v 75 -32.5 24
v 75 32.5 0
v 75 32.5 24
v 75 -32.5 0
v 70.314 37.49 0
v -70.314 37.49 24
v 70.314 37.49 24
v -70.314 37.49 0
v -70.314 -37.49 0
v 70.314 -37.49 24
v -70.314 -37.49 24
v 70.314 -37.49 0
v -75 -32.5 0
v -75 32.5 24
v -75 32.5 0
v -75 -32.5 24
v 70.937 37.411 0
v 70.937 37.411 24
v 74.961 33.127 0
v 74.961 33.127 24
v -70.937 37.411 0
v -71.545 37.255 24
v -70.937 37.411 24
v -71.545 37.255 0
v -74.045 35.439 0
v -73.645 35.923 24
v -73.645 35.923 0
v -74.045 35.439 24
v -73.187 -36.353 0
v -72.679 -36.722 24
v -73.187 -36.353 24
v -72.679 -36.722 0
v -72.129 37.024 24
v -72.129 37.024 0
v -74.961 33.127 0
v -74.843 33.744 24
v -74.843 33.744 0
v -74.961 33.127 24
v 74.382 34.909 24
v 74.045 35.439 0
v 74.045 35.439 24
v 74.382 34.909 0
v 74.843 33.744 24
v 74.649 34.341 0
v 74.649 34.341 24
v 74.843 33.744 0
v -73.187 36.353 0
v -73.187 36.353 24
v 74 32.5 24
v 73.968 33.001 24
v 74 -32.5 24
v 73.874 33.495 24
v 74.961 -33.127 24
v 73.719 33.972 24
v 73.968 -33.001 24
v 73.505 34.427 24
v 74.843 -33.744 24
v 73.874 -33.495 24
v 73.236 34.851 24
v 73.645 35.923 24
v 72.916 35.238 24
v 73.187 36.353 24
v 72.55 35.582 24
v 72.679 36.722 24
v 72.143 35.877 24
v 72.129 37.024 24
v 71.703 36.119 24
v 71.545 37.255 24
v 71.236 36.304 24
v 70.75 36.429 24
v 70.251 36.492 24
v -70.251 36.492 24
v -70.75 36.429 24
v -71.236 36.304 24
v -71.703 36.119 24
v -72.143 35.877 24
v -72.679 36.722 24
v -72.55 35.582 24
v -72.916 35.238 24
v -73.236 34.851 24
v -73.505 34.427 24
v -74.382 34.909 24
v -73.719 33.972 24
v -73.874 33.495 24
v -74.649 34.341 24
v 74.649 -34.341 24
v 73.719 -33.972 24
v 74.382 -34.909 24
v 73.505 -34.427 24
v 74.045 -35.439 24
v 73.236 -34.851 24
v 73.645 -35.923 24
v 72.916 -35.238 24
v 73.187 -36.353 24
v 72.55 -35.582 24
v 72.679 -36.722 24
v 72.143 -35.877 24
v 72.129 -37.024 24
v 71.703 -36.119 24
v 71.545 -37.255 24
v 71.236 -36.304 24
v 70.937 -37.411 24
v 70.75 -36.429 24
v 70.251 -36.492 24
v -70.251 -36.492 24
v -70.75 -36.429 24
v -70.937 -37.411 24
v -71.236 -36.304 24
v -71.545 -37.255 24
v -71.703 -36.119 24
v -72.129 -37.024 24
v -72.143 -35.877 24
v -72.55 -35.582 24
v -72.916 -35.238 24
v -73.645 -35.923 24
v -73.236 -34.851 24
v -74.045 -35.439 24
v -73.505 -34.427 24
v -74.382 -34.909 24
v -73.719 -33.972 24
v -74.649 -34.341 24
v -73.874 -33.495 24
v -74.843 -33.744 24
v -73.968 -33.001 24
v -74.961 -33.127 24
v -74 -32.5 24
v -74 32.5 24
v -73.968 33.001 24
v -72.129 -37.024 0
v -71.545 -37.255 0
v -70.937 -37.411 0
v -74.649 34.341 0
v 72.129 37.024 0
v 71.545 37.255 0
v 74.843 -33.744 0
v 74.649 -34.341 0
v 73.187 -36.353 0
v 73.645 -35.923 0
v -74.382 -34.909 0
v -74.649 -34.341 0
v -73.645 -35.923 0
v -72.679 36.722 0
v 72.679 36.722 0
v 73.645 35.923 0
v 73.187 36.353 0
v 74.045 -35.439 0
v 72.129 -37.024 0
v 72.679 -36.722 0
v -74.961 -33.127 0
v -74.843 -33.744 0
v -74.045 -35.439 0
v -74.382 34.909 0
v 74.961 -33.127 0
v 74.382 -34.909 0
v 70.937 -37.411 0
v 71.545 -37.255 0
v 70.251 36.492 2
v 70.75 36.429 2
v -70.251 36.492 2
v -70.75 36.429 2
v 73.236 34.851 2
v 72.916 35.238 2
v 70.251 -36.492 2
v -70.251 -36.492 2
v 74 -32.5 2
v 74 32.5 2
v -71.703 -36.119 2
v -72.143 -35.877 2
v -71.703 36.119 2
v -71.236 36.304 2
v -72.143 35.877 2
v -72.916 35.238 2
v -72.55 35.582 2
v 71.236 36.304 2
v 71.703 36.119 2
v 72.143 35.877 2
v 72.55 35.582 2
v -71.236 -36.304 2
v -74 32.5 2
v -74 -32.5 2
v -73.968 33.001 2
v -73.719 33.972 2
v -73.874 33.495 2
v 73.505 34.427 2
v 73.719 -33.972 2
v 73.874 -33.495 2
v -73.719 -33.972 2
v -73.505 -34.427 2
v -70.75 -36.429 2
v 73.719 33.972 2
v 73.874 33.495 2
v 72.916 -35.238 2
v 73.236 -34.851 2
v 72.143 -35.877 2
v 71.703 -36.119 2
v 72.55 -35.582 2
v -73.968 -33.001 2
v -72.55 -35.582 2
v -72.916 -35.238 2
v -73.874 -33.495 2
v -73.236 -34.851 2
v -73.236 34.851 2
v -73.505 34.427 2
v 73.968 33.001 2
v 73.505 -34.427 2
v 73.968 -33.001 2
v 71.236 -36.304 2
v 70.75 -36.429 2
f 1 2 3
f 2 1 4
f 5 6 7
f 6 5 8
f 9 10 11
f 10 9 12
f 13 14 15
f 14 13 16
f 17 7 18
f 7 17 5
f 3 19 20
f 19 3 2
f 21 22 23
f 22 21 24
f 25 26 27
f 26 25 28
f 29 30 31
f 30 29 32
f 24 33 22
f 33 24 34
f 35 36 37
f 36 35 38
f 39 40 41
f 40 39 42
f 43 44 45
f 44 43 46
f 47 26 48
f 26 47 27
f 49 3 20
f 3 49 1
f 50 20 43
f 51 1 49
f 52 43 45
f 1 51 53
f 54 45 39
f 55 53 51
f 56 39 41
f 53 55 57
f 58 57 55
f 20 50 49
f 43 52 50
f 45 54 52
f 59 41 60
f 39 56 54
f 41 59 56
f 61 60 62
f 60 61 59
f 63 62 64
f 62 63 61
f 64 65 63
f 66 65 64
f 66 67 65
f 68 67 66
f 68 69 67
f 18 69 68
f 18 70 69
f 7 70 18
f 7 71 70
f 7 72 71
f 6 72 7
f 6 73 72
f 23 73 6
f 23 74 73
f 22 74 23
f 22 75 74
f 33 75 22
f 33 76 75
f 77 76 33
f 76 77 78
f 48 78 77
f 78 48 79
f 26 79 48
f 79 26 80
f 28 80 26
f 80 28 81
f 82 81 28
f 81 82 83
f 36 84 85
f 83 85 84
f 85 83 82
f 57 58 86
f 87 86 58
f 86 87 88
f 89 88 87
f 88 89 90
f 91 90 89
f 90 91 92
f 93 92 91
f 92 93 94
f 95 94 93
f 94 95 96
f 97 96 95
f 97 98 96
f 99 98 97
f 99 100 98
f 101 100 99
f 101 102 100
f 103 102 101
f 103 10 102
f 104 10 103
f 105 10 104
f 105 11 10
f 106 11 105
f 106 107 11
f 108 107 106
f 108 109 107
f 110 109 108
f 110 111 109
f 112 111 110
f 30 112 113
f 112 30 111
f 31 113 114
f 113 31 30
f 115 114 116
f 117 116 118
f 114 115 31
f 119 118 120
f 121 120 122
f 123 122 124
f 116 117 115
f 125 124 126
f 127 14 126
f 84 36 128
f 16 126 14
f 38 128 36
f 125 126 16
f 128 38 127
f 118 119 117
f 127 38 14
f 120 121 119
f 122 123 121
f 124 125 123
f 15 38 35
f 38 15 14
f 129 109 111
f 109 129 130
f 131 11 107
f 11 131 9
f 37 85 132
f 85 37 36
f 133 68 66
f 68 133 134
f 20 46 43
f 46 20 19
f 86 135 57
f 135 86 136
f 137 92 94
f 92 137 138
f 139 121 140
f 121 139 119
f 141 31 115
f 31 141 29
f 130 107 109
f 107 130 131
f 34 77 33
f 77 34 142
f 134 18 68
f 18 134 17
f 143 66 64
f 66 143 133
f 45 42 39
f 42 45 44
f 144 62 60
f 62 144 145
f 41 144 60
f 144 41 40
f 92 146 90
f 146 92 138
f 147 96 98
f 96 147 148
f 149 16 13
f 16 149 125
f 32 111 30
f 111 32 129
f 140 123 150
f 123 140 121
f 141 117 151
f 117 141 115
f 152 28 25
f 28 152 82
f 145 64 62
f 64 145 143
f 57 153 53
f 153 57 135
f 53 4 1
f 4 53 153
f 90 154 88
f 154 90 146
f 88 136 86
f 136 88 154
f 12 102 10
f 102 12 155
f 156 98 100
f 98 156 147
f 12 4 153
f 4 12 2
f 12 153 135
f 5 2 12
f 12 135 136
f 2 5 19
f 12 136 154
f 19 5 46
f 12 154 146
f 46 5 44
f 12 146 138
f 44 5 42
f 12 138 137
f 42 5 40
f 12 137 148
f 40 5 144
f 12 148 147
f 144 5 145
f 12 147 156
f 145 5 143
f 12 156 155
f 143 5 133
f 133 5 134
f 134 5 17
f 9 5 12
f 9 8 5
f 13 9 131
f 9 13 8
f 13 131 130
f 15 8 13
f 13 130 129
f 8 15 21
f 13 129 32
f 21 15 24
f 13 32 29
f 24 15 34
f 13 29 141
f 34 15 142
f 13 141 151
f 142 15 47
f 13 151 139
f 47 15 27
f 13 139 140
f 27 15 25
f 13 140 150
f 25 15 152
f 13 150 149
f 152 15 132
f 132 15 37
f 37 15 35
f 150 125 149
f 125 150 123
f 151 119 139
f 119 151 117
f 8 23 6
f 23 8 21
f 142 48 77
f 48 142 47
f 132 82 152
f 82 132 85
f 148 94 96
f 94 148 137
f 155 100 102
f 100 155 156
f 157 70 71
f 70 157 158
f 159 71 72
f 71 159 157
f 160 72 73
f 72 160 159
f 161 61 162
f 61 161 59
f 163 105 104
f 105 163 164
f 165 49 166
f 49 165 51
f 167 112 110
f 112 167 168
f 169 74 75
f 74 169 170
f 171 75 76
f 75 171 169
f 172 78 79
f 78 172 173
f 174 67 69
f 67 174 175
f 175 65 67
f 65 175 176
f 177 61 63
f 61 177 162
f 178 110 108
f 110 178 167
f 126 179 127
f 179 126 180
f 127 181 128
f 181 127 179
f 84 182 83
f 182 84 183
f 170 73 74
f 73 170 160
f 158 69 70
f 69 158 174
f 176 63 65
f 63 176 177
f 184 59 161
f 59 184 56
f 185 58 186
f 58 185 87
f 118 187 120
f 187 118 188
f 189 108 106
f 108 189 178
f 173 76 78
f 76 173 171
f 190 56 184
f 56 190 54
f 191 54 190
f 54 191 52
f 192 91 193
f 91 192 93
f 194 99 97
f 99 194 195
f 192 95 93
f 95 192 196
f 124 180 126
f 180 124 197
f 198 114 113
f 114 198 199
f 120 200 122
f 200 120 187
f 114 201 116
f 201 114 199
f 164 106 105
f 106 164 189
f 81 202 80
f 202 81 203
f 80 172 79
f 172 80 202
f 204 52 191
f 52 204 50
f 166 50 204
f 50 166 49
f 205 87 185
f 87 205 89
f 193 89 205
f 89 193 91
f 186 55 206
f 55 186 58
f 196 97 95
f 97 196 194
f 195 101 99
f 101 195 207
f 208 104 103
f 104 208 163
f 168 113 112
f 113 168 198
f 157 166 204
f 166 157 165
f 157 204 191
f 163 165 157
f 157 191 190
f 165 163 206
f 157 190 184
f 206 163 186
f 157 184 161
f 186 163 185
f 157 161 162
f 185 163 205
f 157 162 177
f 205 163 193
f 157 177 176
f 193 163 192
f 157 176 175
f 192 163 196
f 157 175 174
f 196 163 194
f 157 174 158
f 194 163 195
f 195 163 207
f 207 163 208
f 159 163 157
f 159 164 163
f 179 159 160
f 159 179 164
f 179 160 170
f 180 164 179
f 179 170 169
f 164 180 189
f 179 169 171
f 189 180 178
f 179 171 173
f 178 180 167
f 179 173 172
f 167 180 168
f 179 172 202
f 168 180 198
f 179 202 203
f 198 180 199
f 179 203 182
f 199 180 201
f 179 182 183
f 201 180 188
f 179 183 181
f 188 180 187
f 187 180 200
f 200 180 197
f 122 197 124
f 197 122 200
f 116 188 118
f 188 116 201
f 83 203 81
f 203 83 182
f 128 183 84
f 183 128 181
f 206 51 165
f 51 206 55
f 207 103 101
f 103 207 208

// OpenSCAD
$fn = 50;


difference() {
	union() {
		hull() {
			translate(v = [-70.0000000000, 32.5000000000, 0]) {
				cylinder(h = 24, r = 5);
			}
			translate(v = [70.0000000000, 32.5000000000, 0]) {
				cylinder(h = 24, r = 5);
			}
			translate(v = [-70.0000000000, -32.5000000000, 0]) {
				cylinder(h = 24, r = 5);
			}
			translate(v = [70.0000000000, -32.5000000000, 0]) {
				cylinder(h = 24, r = 5);
			}
		}
	}
	union() {
		translate(v = [0, 0, 2]) {
			hull() {
				translate(v = [-70.0000000000, 32.5000000000, 0]) {
					cylinder(h = 22, r = 4);
				}
				translate(v = [70.0000000000, 32.5000000000, 0]) {
					cylinder(h = 22, r = 4);
				}
				translate(v = [-70.0000000000, -32.5000000000, 0]) {
					cylinder(h = 22, r = 4);
				}
				translate(v = [70.0000000000, -32.5000000000, 0]) {
					cylinder(h = 22, r = 4);
				}
			}
		}
	}
}
